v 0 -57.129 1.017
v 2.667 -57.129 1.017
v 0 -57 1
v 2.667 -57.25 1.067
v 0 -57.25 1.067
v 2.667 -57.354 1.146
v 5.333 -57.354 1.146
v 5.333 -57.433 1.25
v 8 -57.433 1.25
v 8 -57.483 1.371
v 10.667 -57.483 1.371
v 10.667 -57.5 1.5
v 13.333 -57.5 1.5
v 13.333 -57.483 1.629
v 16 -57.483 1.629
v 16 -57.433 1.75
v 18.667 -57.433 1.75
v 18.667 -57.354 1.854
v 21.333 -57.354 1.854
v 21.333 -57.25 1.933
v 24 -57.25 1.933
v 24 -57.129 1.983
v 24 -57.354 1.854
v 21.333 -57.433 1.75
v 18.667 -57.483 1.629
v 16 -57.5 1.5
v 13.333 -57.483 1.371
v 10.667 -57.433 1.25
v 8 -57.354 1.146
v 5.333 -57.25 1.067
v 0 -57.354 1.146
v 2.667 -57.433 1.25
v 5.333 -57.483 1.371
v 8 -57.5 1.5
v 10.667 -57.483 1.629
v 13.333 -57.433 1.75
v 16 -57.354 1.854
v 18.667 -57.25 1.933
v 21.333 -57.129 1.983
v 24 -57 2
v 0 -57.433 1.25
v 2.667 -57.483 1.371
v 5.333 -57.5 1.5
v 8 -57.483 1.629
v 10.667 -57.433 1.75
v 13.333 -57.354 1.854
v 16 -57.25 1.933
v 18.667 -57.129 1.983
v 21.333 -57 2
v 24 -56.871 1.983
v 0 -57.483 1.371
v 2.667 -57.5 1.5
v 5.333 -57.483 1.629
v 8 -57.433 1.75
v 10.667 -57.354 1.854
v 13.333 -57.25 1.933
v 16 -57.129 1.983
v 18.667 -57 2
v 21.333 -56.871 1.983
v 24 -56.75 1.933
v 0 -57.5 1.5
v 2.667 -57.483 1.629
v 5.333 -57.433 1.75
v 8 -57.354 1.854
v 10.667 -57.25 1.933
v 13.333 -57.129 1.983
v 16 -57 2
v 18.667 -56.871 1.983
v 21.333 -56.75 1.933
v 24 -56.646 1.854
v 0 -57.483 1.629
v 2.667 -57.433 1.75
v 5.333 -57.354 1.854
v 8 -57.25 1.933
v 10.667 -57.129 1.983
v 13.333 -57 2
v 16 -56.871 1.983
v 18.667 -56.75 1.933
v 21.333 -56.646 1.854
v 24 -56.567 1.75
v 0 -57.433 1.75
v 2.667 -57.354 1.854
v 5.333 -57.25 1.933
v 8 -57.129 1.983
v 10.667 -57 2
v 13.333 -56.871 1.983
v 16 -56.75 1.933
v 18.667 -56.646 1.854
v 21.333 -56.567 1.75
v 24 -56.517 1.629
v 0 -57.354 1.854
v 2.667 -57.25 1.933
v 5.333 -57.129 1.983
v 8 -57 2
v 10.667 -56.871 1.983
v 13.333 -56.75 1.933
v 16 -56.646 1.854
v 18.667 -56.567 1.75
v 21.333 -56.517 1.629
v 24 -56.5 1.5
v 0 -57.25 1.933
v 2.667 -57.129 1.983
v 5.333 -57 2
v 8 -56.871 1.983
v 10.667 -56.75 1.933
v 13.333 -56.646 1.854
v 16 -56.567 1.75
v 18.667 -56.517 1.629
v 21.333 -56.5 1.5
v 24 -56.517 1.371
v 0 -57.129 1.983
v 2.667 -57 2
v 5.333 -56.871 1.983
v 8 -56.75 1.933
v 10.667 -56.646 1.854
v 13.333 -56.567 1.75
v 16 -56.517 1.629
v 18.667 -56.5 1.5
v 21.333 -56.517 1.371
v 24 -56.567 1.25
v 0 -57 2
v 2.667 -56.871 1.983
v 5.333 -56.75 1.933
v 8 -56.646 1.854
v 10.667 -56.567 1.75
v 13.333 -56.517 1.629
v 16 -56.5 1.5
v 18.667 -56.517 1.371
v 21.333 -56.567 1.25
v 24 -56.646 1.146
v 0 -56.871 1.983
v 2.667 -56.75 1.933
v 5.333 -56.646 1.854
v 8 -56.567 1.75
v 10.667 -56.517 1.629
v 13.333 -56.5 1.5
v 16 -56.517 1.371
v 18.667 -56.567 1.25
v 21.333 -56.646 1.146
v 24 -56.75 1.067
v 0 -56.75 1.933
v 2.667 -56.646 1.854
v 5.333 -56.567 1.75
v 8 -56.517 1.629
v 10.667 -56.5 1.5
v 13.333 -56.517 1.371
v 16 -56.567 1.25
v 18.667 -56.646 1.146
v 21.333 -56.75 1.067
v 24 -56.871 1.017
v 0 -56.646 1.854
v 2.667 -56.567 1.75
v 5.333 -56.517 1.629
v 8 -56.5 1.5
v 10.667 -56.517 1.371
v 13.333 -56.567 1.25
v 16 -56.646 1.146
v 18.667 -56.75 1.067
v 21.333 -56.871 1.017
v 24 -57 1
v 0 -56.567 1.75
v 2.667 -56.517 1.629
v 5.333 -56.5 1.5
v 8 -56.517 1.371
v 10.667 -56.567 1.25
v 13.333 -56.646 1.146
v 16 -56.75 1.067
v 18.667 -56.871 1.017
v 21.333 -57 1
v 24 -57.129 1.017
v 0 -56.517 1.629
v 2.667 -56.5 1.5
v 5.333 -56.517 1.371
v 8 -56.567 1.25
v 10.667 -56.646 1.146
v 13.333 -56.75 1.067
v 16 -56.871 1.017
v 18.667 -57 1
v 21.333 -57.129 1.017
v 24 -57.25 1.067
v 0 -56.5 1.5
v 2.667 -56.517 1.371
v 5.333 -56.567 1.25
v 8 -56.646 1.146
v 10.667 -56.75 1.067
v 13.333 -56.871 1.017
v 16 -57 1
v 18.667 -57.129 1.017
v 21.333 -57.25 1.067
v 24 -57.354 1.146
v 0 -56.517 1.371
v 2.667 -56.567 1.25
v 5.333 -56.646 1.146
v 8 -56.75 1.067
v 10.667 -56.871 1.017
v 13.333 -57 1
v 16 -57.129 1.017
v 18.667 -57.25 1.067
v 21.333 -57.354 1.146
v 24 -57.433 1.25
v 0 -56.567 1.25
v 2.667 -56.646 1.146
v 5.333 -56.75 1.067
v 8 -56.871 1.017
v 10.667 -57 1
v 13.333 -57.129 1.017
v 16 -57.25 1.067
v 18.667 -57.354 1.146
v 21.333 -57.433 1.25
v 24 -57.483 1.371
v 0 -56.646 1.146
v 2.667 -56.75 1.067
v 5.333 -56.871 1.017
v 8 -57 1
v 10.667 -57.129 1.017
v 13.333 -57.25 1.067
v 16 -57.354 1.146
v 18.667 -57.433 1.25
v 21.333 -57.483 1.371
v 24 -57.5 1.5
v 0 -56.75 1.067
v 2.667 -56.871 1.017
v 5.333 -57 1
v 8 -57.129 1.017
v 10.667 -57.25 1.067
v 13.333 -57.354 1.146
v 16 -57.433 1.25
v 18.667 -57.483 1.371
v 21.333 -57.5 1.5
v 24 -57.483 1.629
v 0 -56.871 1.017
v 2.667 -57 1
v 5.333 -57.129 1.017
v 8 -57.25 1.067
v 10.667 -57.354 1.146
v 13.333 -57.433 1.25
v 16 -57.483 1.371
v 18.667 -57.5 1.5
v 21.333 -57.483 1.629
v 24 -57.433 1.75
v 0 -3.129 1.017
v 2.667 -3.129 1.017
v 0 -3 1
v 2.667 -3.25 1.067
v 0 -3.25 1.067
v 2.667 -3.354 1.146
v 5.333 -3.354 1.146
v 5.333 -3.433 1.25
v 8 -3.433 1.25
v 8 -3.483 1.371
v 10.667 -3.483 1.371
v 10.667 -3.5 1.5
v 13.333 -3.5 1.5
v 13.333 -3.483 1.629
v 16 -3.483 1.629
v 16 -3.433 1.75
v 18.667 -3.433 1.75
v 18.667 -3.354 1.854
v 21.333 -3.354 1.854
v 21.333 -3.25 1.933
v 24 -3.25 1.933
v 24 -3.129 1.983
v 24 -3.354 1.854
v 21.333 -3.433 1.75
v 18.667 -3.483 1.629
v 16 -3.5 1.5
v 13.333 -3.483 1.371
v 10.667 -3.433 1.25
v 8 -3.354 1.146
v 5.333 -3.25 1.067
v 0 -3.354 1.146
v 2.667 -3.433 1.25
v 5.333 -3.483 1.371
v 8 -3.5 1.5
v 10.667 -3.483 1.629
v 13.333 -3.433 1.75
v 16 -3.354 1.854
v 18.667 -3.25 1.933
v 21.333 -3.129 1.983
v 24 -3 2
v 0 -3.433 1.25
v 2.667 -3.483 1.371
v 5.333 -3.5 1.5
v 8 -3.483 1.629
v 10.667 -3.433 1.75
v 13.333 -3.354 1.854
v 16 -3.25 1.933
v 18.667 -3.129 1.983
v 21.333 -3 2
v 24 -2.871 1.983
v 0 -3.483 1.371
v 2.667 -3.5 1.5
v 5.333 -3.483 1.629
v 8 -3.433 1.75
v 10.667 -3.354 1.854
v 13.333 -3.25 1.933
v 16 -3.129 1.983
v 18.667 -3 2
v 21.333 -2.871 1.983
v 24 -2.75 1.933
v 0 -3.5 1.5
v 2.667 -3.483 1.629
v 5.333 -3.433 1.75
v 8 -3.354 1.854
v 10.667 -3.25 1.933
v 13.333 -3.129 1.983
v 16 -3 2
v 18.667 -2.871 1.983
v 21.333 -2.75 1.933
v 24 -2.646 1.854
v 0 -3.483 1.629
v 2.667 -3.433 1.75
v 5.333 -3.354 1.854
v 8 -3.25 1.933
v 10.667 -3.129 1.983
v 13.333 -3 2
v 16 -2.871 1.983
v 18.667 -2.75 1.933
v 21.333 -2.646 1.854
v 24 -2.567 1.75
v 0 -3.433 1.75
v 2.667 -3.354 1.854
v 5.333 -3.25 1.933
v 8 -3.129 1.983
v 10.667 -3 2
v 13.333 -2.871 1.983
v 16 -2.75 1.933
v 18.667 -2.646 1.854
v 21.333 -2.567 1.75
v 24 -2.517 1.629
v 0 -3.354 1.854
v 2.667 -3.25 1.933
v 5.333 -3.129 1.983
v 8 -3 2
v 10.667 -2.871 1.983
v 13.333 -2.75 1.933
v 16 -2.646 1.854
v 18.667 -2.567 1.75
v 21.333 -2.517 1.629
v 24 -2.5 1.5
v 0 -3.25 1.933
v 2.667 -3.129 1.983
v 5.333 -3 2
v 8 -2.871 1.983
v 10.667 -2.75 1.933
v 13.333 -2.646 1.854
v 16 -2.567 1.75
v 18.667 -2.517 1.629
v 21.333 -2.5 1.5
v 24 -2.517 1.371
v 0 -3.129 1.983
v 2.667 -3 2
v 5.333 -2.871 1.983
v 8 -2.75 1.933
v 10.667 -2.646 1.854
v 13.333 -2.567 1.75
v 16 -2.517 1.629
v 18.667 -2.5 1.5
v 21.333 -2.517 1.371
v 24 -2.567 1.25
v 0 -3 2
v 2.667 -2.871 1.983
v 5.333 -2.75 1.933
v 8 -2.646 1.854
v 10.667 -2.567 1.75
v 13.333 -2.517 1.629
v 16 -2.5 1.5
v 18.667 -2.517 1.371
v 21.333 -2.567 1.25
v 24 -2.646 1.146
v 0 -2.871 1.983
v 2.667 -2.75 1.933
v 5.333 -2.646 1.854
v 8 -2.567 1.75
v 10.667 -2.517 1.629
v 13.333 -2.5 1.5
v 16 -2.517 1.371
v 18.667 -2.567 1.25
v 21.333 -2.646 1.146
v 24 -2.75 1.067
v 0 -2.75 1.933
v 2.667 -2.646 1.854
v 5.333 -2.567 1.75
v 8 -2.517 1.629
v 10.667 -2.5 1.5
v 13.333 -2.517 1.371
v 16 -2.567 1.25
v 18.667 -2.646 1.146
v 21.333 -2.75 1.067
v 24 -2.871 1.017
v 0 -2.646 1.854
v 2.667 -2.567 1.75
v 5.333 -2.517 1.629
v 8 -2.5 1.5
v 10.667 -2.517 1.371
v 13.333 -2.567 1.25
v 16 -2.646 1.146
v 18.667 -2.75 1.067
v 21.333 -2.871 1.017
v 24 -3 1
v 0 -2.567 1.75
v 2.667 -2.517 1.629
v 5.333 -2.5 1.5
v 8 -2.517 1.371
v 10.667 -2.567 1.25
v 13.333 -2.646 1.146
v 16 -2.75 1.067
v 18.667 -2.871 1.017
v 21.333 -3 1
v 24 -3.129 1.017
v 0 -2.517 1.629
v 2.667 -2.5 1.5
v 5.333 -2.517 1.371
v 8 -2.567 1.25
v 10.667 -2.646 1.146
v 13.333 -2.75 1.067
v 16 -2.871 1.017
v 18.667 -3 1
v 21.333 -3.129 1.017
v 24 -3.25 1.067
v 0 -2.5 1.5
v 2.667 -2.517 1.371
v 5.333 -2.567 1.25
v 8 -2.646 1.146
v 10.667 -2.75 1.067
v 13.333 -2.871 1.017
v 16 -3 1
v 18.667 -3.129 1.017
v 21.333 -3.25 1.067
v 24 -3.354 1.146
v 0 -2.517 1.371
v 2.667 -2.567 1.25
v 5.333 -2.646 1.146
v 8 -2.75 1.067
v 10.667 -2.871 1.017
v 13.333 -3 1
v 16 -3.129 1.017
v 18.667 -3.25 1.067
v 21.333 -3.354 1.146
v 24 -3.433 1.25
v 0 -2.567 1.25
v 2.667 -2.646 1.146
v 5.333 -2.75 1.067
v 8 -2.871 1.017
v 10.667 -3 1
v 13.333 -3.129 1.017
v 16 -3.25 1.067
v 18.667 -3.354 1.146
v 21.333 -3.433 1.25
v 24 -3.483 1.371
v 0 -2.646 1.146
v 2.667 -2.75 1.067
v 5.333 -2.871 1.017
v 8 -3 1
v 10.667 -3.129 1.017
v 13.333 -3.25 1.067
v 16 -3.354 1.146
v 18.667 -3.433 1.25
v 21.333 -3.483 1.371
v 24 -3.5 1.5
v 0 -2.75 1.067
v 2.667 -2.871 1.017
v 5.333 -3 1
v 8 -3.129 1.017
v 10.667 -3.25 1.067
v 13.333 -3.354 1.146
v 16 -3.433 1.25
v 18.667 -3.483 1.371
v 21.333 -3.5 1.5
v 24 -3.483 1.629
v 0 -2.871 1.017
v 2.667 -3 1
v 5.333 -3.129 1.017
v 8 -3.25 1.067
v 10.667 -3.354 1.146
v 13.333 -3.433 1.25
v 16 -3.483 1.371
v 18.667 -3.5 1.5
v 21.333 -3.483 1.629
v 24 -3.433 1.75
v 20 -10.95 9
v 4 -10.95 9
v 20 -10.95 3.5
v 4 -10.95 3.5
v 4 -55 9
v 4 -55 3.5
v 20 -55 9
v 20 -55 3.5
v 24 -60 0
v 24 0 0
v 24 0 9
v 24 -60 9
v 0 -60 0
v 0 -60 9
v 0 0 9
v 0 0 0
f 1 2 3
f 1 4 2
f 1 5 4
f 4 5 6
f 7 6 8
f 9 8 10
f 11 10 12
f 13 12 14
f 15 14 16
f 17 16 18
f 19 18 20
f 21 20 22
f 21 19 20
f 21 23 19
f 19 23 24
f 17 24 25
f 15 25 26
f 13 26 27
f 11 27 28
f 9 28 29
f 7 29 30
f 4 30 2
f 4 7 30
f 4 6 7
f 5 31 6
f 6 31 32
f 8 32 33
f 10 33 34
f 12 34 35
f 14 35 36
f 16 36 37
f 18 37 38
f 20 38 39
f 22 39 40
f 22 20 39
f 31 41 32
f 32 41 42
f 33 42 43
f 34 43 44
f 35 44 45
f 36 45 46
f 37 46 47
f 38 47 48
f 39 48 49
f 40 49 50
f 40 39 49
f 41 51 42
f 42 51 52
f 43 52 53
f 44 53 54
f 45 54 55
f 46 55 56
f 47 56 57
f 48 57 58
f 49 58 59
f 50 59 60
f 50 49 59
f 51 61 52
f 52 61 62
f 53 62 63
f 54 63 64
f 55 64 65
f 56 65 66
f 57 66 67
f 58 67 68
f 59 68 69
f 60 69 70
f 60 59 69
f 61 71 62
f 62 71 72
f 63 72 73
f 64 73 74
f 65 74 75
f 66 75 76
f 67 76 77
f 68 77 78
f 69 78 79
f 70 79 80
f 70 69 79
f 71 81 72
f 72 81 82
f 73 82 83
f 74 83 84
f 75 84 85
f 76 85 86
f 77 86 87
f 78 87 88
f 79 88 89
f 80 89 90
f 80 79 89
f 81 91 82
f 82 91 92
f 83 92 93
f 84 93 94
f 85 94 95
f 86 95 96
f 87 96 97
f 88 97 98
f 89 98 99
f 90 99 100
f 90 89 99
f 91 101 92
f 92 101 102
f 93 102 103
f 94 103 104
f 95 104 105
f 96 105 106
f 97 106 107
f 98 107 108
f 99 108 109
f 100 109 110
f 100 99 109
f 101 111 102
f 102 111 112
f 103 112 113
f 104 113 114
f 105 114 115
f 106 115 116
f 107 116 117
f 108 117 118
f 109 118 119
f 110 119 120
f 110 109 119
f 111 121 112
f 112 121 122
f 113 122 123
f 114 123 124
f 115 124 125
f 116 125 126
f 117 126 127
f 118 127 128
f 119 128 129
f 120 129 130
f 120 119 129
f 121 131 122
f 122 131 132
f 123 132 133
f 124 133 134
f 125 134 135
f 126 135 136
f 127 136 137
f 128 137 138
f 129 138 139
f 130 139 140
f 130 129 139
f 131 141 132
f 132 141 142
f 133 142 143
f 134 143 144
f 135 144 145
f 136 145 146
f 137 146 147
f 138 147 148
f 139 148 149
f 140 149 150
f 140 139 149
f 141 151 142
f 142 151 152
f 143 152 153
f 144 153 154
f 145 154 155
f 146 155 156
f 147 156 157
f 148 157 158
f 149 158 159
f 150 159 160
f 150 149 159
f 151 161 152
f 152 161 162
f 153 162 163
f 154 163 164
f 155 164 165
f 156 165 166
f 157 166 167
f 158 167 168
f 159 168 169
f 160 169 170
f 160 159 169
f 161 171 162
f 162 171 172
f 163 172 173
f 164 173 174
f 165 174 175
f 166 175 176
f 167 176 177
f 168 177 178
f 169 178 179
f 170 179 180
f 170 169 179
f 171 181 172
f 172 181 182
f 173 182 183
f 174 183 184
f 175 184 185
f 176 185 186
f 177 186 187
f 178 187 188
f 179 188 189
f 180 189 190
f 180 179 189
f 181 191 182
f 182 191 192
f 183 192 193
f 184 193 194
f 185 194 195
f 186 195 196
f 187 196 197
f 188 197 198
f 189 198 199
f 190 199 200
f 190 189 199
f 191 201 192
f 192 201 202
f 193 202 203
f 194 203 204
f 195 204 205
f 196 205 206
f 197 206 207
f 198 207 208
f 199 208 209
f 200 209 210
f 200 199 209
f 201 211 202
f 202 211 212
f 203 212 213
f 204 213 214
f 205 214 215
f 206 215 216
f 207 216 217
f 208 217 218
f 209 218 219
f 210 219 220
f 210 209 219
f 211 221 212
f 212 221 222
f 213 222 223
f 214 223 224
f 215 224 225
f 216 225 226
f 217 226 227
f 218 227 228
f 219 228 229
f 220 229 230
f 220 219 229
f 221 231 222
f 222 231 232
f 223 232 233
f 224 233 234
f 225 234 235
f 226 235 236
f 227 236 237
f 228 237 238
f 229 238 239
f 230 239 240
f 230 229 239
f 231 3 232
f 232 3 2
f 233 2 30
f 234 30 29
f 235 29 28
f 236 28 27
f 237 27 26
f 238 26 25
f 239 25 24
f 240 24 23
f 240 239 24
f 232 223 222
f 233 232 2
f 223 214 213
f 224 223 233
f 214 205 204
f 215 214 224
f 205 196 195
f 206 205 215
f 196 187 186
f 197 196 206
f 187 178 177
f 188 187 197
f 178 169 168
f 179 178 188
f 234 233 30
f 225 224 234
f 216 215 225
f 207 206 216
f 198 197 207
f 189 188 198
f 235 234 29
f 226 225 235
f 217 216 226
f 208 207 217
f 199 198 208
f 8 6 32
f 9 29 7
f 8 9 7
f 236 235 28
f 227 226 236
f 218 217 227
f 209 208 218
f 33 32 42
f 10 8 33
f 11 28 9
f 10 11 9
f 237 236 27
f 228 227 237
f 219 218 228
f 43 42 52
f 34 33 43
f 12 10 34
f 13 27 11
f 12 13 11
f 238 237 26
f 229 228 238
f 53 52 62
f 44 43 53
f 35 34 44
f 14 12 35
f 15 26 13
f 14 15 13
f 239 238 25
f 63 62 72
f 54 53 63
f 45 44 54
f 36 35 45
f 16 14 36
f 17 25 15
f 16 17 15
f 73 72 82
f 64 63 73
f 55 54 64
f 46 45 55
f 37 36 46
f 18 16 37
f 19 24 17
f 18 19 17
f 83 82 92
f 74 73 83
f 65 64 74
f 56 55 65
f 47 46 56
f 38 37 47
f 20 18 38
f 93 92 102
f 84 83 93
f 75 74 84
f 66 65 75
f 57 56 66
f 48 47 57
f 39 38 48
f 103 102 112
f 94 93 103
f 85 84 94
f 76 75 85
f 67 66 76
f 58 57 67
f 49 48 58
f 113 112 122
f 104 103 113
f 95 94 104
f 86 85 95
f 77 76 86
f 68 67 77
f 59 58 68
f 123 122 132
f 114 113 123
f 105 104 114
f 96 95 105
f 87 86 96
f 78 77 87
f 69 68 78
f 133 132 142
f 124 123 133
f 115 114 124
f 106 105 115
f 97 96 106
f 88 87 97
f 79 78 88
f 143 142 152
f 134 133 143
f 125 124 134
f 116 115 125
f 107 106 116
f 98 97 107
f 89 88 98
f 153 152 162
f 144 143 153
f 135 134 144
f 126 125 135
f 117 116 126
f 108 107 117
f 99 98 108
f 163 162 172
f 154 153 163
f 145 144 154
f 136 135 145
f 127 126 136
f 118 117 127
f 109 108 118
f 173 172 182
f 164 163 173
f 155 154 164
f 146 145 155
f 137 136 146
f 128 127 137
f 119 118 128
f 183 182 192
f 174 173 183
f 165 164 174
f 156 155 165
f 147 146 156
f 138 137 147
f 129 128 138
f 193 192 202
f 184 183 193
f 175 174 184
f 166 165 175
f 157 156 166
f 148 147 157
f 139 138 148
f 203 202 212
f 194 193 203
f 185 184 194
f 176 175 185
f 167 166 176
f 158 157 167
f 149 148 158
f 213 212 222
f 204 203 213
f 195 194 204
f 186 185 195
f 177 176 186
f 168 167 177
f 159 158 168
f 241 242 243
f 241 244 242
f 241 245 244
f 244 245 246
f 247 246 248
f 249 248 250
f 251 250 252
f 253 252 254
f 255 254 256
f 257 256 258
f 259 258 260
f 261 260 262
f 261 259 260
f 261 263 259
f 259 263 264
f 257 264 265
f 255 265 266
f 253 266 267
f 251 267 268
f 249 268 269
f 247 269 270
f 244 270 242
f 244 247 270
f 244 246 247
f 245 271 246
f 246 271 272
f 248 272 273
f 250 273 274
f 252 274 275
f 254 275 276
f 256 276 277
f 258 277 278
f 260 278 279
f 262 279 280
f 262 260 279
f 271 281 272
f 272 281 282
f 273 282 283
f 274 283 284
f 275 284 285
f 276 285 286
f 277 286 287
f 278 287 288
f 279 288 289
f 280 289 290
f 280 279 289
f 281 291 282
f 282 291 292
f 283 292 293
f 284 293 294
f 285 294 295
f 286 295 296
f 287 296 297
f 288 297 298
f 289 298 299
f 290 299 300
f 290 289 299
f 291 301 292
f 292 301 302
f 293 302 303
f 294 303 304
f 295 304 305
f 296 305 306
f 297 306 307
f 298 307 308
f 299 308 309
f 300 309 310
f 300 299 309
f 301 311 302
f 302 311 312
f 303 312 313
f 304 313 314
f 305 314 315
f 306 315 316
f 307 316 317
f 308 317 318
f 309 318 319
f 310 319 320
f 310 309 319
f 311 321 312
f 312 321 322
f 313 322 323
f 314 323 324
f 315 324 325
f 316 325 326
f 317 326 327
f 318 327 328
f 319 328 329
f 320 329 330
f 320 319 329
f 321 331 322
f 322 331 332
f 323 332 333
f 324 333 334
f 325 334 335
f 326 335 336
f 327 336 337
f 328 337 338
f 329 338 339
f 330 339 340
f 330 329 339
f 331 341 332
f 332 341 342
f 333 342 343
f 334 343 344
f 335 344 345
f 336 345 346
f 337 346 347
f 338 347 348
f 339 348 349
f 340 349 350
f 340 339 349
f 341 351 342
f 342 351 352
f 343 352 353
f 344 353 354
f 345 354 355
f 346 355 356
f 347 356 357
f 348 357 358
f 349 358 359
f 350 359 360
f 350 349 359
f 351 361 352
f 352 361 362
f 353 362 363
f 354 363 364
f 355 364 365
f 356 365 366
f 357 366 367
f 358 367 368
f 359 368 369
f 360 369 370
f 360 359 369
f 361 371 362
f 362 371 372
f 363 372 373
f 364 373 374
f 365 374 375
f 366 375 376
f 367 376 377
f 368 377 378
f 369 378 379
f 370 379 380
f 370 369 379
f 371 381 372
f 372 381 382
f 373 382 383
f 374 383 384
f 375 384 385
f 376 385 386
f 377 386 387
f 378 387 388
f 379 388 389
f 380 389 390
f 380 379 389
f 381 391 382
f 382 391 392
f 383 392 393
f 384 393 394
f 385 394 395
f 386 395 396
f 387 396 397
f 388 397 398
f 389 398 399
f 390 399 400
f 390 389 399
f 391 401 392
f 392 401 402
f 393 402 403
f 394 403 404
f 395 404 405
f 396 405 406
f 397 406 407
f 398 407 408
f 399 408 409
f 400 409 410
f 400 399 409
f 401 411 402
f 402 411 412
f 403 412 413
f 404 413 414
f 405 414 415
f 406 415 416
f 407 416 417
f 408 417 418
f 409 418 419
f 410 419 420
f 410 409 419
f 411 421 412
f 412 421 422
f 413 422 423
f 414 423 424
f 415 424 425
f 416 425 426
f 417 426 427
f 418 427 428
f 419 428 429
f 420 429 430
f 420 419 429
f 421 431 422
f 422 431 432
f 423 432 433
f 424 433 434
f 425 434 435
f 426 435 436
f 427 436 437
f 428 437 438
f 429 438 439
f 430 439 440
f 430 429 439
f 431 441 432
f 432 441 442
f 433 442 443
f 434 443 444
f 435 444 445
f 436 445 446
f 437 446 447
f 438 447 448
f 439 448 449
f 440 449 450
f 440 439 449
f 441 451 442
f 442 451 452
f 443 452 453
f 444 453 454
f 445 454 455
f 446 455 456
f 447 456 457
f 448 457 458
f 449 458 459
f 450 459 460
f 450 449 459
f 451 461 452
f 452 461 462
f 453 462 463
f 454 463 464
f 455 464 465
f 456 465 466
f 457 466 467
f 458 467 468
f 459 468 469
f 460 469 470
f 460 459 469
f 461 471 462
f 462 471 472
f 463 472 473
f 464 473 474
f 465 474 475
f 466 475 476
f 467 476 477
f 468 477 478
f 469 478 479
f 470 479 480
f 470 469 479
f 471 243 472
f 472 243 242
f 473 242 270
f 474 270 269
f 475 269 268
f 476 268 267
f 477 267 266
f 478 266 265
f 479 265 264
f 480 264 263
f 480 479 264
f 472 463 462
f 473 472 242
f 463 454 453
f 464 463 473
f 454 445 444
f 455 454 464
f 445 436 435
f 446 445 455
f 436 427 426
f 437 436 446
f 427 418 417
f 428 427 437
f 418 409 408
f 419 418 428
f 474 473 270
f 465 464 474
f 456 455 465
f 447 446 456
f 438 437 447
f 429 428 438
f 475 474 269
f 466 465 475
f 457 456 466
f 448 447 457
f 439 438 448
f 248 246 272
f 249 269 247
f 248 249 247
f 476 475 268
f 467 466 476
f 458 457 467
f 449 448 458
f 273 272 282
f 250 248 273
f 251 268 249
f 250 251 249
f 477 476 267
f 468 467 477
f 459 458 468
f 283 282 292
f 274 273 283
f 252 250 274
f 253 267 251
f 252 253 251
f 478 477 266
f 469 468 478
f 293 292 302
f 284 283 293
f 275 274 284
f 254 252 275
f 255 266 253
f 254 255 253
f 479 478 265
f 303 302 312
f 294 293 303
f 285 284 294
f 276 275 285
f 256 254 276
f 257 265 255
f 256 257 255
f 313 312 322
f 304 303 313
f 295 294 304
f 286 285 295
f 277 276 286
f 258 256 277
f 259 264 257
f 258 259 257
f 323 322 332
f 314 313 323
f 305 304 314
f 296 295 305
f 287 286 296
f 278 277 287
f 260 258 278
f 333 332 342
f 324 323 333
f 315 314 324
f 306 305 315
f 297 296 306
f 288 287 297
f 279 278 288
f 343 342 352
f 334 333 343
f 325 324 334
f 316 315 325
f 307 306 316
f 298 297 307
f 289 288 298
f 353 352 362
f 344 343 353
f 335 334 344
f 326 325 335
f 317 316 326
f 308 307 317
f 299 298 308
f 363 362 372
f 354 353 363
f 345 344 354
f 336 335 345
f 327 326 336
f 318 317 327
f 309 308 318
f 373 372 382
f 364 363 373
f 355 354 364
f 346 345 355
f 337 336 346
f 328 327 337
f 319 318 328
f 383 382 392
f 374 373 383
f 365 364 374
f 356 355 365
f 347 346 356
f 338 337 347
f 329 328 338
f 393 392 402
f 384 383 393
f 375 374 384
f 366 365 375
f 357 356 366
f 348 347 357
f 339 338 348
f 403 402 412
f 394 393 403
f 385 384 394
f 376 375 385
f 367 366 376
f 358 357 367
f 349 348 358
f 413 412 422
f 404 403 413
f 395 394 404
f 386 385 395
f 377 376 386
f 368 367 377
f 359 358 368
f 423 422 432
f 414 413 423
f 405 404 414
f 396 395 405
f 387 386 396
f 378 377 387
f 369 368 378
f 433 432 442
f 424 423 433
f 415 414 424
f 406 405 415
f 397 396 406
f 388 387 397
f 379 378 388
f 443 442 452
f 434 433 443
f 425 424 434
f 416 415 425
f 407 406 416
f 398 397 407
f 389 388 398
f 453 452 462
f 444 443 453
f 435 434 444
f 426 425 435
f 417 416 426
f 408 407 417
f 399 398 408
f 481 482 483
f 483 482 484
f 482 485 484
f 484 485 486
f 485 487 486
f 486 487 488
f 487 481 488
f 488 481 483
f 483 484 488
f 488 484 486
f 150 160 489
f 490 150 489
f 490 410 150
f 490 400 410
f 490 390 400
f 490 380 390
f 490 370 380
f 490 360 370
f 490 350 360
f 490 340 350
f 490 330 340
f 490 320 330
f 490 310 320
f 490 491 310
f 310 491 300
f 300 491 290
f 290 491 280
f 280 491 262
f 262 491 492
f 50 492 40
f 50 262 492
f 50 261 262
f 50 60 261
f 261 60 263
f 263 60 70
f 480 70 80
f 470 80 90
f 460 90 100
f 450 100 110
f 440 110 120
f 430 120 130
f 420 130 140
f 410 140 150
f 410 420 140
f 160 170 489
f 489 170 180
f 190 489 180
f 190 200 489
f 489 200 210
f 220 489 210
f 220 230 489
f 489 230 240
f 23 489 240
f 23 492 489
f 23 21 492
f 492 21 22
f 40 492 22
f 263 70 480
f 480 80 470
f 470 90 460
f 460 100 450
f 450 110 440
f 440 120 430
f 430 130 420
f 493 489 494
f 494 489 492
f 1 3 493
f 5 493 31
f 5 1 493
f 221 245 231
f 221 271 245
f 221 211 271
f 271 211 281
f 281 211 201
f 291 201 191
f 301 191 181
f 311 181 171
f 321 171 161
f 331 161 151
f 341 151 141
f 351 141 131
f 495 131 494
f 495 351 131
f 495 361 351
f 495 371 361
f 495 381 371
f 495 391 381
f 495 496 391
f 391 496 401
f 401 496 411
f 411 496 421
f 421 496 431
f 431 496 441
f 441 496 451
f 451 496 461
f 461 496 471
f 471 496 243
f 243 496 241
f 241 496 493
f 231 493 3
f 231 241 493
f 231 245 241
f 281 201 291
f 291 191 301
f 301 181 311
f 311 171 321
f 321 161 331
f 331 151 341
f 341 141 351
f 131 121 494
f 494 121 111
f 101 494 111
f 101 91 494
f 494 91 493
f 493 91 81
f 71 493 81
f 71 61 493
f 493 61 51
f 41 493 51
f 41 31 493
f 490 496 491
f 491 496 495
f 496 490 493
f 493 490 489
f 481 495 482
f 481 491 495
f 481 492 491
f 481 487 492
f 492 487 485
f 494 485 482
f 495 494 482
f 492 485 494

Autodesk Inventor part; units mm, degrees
ref_plane "YZ Plane" through (0, 0, 0) normal (1, 0, 0) x (0, 1, 0)
ref_plane "XZ Plane" through (0, 0, 0) normal (0, 1, 0) x (-1, 0, 0)
ref_plane "XY Plane" through (0, 0, 0) normal (0, 0, 1) x (1, 0, 0)
sketch "Sketch1" plane through (0, 0, 0) normal (0, 0, 1) x (1, 0, 0)
  line L0 (0, 0) -> (24, 0)
  line L1 (24, 0) -> (24, -60)
  line L2 (24, -60) -> (0, -60)
  line L3 (0, -60) -> (0, 0)
  dimension "d0" = 24
  dimension "d1" = 60
extrude "Extrusion1" add sketch "Sketch1" along normal blind 9
sketch "Sketch2" plane through (0, 0, 9) normal (0, 0, 1) x (1, 0, 0)
  line L0 (0, -60) -> (24, -60) projected
  line L1 (4, -55) -> (4, -10.95)
  line L2 (20, -10.95) -> (20, -55)
  line L3 (4, -10.95) -> (20, -10.95)
  line L4 (4, -55) -> (20, -55)
  line L5 (24, -60) -> (24, 0) projected
  line L6 (0, 0) -> (0, -60) projected
  line L7 (24, 0) -> (0, 0) projected
  dimension "d7" = 4
  dimension "d8" = 4
  dimension "d9" = 5
  dimension "d10" = 10.95
extrude "Extrusion2" cut sketch "Sketch2" against normal blind 5.5 contours L1 L3 L2 L4
sketch "Sketch3" plane through (24, -60, 0) normal (1, 0, 0) x (0, 0, -1)
  circle A0 centre (-1.5, 3) radius 0.5
  circle A1 centre (-1.5, 57) radius 0.5
  line L0 (0, 0) -> (-9, 0) projected
  line L1 (-9, 0) -> (-9, 60) projected
  line L2 (0, 60) -> (-9, 60) projected
  dimension "d15" = 1
  dimension "d18" = 1
  dimension "d19" = 3
  dimension "d20" = 7.5
  dimension "d21" = 3
  dimension "d22" = 7.5
extrude "Extrusion3" cut sketch "Sketch3" against normal blind 24
properties part number "Prueba1MPU"
